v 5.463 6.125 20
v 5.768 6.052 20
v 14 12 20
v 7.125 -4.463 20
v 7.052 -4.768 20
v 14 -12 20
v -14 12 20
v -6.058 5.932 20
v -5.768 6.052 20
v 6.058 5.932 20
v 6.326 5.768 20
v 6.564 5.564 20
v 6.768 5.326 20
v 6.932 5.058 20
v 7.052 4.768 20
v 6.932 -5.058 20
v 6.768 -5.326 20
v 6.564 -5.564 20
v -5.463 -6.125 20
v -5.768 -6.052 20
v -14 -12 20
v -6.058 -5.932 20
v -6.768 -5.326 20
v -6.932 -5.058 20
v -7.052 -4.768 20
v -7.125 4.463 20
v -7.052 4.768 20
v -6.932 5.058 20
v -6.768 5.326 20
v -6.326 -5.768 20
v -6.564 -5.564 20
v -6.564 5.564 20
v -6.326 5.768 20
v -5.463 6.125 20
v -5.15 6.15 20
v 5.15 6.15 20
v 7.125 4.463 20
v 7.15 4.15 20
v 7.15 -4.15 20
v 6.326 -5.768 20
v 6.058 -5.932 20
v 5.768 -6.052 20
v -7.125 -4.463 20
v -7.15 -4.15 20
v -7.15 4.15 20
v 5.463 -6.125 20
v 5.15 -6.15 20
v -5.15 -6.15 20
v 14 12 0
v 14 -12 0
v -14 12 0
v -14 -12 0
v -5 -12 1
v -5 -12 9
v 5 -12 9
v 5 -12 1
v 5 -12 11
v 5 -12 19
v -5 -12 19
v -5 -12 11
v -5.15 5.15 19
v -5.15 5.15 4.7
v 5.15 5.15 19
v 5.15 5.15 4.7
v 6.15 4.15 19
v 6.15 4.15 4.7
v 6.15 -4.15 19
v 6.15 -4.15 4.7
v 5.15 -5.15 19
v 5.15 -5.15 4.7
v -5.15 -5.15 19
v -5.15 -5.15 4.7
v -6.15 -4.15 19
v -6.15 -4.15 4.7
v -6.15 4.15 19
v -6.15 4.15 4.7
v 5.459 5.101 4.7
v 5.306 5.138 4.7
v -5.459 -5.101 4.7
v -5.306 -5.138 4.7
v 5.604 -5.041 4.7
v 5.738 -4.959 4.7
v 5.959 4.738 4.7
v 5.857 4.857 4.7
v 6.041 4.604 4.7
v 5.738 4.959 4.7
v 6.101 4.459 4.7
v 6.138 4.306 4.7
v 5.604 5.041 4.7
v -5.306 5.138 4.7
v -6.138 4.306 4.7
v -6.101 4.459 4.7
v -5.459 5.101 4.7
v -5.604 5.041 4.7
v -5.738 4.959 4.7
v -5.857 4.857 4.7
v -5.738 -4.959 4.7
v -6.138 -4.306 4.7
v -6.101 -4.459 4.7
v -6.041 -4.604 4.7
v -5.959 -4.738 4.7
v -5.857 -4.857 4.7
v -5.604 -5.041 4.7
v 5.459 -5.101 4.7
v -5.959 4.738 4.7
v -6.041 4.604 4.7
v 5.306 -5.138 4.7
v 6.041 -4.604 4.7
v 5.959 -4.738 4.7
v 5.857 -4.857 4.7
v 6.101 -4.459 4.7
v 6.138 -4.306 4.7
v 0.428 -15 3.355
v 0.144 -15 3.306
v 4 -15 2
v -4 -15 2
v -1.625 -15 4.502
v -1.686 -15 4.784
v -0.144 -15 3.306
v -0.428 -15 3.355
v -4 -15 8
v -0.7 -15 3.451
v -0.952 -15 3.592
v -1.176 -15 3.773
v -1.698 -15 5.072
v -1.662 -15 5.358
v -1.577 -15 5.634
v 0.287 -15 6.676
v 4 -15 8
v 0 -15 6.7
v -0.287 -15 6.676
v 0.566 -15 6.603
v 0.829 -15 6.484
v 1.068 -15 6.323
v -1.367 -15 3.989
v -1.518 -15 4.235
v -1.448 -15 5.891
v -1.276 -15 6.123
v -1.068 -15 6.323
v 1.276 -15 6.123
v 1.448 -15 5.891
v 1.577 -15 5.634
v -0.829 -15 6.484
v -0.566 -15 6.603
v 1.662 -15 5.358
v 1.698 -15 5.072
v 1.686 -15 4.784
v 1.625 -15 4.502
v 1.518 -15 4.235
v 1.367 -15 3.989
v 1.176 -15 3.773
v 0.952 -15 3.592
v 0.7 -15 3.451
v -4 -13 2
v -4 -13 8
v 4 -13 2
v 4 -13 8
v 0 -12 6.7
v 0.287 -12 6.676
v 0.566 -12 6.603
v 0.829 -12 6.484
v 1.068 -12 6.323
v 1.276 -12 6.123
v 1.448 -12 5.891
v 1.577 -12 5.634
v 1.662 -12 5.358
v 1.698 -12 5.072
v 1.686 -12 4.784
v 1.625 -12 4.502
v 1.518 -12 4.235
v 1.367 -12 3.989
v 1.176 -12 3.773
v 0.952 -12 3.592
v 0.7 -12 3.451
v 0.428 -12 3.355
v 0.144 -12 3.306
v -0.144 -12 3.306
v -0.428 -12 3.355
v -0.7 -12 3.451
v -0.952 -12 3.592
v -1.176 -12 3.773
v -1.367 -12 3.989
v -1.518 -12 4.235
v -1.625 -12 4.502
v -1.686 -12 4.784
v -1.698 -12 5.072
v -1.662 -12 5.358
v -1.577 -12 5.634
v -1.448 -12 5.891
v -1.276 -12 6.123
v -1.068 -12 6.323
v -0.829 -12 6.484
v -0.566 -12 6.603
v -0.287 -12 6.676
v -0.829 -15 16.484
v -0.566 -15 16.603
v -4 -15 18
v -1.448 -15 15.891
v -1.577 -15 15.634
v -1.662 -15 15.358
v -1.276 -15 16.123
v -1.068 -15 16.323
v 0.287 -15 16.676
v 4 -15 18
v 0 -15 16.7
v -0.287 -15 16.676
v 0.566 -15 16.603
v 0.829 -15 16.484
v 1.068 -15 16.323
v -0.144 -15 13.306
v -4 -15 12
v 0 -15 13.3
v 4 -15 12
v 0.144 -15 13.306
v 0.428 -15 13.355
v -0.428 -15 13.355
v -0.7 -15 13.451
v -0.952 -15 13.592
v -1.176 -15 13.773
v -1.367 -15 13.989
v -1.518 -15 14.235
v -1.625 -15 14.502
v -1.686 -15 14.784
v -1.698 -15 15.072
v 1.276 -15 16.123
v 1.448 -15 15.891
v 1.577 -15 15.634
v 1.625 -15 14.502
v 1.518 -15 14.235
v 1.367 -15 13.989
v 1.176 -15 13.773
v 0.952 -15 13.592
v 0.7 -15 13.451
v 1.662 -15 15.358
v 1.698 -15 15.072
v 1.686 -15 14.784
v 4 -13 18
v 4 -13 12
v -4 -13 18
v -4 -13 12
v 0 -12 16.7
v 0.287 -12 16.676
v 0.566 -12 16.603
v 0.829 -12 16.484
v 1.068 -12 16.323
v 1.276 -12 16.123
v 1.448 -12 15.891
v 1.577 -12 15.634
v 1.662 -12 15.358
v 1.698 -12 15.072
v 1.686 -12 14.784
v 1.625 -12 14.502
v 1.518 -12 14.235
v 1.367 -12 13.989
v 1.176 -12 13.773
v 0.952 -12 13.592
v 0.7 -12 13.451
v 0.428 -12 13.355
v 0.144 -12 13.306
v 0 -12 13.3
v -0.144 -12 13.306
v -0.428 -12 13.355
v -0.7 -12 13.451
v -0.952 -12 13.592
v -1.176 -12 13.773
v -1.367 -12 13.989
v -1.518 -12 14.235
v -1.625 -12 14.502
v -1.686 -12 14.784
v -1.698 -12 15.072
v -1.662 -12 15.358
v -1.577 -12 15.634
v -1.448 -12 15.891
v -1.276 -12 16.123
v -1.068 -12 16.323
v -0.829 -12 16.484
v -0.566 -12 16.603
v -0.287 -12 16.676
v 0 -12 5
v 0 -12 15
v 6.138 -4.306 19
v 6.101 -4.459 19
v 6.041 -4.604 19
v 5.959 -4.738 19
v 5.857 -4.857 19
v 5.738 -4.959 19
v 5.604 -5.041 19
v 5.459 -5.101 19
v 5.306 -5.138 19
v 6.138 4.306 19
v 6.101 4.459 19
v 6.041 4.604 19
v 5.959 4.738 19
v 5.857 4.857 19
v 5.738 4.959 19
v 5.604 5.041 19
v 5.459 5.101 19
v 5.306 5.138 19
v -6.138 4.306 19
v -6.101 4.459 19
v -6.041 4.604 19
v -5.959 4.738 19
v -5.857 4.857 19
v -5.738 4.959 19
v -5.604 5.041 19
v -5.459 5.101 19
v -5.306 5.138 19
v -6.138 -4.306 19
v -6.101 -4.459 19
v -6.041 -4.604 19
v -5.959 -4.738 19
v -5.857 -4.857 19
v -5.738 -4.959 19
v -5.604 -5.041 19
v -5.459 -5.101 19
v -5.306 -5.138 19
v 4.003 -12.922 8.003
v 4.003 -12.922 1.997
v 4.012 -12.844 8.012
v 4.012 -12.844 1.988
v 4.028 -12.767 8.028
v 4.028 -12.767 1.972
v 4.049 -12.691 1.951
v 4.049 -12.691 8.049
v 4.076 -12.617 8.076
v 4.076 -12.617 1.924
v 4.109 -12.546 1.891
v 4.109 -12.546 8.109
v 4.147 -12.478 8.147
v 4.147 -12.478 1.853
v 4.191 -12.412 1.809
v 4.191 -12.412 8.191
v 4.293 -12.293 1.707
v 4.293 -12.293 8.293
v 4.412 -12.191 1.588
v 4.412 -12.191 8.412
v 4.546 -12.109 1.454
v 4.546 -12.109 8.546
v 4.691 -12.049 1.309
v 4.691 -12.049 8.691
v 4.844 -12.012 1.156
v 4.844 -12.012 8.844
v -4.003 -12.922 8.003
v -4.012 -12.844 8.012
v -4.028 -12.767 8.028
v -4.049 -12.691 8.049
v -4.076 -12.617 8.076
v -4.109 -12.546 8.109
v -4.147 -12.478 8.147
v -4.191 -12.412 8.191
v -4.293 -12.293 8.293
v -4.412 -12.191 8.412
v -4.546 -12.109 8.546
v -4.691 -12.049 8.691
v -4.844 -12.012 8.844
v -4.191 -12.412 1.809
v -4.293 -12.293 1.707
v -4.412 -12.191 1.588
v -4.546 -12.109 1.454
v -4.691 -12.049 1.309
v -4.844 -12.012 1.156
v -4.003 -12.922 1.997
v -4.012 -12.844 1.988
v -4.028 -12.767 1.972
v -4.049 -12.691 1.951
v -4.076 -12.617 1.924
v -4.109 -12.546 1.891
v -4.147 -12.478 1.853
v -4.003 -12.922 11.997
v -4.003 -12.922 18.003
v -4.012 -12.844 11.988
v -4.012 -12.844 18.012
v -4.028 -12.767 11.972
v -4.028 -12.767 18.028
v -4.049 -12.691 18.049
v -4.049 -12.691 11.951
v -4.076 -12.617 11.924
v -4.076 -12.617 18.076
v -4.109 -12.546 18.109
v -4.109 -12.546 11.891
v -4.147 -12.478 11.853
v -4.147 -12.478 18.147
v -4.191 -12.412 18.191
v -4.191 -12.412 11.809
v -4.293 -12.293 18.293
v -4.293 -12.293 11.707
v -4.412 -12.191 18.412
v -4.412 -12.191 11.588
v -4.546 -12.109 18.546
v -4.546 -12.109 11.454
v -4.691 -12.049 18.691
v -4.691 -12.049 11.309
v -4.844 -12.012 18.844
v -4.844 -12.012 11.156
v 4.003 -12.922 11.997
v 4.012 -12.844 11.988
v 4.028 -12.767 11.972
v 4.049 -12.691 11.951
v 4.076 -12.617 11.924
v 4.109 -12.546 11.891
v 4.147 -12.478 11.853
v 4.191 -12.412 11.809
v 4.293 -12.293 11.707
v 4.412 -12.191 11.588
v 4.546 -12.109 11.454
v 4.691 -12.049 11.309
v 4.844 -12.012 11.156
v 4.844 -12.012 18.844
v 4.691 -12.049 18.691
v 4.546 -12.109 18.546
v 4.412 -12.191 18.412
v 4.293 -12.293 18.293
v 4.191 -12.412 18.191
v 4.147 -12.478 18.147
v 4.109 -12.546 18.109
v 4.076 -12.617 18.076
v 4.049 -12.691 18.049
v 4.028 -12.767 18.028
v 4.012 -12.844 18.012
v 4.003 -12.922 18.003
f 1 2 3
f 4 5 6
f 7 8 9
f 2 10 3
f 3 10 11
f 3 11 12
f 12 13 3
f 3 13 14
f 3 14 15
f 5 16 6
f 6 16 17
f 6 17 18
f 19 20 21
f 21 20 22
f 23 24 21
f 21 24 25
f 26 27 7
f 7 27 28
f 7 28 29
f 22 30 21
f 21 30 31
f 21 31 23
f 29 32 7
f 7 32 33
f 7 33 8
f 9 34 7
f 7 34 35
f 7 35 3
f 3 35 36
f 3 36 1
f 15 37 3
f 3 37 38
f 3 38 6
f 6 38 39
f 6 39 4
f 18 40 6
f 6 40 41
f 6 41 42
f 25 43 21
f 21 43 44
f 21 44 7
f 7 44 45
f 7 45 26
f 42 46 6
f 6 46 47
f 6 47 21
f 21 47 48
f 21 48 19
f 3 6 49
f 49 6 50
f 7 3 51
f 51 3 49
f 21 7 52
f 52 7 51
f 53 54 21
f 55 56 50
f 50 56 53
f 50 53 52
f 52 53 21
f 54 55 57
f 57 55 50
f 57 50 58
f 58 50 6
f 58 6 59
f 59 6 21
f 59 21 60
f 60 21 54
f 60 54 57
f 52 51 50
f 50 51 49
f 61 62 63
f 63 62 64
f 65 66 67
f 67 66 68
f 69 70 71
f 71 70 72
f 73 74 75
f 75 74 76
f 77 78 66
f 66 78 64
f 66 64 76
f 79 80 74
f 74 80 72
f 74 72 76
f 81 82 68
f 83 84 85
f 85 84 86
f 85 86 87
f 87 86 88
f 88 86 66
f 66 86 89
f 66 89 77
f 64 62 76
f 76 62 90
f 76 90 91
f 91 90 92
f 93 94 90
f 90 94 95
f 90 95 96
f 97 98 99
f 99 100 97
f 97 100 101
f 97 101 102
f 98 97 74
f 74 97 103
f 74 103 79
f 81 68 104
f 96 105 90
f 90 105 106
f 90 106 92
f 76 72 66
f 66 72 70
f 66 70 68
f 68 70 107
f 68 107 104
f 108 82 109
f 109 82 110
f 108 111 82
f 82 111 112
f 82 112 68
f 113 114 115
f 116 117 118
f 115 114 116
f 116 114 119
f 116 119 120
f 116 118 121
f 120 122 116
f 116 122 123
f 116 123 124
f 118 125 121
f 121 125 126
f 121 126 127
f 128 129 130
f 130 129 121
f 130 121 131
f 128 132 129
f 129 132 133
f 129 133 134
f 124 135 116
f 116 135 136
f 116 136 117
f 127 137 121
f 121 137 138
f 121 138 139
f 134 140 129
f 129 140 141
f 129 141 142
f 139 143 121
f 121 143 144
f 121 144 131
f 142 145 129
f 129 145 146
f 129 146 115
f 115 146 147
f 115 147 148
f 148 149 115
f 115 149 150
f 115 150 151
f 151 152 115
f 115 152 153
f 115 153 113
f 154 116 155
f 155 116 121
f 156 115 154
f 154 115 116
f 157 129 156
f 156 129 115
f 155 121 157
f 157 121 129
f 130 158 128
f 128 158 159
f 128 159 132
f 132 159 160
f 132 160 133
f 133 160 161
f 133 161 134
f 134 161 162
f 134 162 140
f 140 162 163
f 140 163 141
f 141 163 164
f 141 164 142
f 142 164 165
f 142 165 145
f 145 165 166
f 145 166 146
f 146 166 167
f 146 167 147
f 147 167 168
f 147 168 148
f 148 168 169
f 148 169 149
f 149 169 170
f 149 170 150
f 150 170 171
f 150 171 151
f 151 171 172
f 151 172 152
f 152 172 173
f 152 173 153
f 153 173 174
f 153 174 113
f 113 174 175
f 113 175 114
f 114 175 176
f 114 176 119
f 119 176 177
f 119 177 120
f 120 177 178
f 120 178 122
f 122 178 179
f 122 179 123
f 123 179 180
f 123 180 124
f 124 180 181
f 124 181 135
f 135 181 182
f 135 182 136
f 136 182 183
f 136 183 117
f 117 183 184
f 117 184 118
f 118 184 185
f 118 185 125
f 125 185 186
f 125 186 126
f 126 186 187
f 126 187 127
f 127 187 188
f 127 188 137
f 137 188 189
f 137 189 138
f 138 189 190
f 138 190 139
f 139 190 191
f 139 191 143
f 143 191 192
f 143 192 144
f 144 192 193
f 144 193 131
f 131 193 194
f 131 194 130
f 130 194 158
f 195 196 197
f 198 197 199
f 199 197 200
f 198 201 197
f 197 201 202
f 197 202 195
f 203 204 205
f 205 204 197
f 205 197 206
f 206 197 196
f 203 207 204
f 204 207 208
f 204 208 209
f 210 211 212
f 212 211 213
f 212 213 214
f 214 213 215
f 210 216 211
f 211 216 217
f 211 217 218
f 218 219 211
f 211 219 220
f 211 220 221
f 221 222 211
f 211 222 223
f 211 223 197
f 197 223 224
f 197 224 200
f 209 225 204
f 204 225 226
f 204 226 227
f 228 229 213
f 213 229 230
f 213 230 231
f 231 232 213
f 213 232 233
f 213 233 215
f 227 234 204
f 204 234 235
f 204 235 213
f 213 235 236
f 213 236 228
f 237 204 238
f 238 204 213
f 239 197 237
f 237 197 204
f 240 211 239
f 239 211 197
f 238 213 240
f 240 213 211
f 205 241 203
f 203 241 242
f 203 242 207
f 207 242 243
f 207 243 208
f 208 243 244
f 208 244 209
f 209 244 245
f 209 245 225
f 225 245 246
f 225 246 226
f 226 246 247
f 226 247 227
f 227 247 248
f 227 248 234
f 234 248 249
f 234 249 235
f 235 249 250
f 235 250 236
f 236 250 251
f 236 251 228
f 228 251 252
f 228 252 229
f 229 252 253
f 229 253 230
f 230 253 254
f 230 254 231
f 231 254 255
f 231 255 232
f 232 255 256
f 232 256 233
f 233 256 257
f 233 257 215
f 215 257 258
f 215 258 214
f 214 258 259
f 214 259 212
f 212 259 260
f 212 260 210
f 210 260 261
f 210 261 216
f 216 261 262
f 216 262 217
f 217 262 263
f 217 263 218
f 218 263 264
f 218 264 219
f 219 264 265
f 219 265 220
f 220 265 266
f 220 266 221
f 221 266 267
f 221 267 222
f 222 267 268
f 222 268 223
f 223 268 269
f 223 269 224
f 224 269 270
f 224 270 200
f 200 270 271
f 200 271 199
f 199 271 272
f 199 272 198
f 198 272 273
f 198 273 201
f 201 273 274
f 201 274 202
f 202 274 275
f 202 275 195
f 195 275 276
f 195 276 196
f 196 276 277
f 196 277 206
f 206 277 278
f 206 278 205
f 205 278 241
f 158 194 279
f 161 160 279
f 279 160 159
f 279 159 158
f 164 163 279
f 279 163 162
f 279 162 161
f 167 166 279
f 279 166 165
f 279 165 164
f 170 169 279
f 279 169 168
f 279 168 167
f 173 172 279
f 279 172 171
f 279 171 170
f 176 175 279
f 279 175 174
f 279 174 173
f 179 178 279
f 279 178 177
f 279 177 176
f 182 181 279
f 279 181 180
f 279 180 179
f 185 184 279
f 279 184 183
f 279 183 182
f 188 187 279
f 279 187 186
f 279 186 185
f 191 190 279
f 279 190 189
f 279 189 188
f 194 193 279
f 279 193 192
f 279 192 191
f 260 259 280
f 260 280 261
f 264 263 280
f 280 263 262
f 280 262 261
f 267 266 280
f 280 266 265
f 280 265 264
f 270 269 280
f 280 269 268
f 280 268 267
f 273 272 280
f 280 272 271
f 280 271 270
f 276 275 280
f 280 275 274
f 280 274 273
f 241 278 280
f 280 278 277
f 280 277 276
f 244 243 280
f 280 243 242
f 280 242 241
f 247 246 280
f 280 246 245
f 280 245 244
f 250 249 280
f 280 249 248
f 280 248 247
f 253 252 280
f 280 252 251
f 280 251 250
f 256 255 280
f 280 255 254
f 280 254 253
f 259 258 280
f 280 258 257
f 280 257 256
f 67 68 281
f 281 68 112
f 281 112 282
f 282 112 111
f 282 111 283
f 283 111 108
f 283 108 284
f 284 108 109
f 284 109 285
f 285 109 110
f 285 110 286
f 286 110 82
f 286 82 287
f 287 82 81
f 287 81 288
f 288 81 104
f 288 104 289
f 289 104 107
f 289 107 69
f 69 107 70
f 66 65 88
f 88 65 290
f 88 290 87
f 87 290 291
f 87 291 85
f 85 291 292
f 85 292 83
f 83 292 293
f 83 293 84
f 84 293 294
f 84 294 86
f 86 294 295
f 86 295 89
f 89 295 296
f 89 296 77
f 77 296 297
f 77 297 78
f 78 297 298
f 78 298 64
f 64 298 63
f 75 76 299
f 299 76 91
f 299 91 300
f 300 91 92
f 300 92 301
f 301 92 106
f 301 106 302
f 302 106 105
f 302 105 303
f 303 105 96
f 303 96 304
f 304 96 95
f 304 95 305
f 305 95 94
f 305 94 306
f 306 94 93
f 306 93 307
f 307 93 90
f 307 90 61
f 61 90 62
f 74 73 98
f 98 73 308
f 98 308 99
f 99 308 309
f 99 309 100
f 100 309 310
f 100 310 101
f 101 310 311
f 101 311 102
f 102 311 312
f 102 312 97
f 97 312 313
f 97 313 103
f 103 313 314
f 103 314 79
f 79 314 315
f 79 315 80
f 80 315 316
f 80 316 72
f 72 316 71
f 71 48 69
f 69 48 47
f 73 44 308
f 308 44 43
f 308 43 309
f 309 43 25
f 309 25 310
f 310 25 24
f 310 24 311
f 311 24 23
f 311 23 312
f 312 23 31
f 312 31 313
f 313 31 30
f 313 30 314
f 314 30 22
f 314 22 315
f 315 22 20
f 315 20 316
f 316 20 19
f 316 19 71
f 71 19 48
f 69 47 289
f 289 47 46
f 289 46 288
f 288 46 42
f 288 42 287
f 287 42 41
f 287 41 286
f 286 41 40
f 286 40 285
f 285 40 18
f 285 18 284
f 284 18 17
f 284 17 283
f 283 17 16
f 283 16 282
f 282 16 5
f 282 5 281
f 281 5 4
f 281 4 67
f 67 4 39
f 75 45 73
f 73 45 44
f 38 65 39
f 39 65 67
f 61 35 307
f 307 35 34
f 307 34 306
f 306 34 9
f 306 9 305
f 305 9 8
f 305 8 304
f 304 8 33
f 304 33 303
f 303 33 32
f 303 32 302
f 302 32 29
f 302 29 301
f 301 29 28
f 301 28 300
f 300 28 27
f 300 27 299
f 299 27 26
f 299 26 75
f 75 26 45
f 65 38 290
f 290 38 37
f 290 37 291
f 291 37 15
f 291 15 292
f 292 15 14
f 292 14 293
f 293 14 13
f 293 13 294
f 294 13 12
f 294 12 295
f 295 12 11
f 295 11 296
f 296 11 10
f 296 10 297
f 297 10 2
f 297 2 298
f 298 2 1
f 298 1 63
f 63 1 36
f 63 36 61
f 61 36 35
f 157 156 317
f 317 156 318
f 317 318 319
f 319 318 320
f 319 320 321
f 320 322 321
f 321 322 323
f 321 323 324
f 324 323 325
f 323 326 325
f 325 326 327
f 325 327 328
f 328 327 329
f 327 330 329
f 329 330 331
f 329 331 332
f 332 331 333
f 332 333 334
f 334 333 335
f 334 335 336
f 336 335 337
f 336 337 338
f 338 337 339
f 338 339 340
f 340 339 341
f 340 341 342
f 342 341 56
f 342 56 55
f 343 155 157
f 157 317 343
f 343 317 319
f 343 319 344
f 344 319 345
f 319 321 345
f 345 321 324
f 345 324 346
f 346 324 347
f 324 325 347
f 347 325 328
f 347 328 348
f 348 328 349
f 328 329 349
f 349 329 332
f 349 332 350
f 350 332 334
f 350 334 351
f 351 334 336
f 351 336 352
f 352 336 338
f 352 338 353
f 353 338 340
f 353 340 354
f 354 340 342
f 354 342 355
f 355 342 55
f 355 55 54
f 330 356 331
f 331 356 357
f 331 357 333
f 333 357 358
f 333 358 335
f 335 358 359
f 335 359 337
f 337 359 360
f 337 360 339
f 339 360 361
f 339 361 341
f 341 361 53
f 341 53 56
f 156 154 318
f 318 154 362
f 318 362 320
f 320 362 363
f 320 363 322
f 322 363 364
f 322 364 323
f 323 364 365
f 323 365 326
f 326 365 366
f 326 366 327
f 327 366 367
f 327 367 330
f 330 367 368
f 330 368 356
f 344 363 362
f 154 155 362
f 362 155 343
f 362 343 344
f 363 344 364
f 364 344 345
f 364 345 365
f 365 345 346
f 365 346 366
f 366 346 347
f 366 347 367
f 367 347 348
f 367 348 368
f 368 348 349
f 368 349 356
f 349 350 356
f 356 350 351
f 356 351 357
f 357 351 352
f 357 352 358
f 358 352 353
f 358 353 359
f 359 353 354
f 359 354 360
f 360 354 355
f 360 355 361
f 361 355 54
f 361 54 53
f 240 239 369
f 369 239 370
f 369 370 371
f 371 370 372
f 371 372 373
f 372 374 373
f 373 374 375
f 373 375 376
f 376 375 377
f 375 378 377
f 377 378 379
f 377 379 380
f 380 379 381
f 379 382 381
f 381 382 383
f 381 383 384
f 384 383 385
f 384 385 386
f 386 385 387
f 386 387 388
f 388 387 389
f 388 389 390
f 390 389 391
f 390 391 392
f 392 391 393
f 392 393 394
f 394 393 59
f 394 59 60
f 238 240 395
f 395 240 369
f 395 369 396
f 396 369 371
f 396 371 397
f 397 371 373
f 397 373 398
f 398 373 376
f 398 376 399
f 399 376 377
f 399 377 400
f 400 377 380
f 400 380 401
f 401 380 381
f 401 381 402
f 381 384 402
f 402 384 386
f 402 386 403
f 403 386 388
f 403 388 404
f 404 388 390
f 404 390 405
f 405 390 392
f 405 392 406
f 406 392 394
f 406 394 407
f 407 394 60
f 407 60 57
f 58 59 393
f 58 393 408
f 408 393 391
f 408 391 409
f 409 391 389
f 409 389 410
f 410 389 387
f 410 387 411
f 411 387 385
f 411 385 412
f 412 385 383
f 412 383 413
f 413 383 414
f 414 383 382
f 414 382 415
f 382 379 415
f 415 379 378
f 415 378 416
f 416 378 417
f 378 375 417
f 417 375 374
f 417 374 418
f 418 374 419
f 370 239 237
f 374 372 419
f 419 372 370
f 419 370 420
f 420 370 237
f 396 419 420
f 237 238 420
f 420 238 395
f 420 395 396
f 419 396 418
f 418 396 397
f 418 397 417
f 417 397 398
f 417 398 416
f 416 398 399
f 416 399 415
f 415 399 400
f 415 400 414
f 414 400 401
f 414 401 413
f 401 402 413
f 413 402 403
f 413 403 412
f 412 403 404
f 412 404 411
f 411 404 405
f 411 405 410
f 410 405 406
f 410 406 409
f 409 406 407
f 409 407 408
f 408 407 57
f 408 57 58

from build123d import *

# Parameters (mm, degrees)
SKETCH1_W           = 28
SKETCH1_H           = 24
BOSS_EXTRUDE1_DEPTH = 20
SKETCH2_W           = 12.3
SKETCH2_H           = 10.3
CUT_EXTRUDE1_DEPTH  = 15.3
SKETCH3_W           = 8
SKETCH3_H           = 6
SKETCH3_R           = 1.7
BOSS_EXTRUDE3_DEPTH = 3
FILLET1_R           = 1
CHAMFER1_SIZE       = 1
FILLET2_R           = 1


with BuildPart() as part:
    # Sketch1 → Boss-Extrude1 (new body)
    with BuildSketch(Plane.XY):
        Rectangle(SKETCH1_W, SKETCH1_H)
    extrude(amount=BOSS_EXTRUDE1_DEPTH)

    # Sketch2 → Cut-Extrude1 (cut)
    with BuildSketch(Plane.XY.offset(20)):
        Rectangle(SKETCH2_W, SKETCH2_H)
    extrude(amount=-CUT_EXTRUDE1_DEPTH, mode=Mode.SUBTRACT)

    # Sketch3 → Boss-Extrude3 (add)
    # profile 1 of 2: a face of its own
    with BuildSketch(Plane.XZ.offset(12)):
        with Locations((0, 5)):
            Rectangle(SKETCH3_W, SKETCH3_H)
        with Locations(Location((0, 5, 0), (0, 0, 90))):
            Circle(SKETCH3_R, mode=Mode.SUBTRACT)
    # profile 2 of 2: a face of its own
    with BuildSketch(Plane.XZ.offset(12)):
        with Locations((0, 15)):
            Rectangle(SKETCH3_W, SKETCH3_H)
        with Locations(Location((0, 15, 0), (0, 0, 270))):
            Circle(SKETCH3_R, mode=Mode.SUBTRACT)
    extrude(amount=BOSS_EXTRUDE3_DEPTH)

    # Fillet1
    fillet1_edges = [part.edges().sort_by_distance(p)[0] for p in [
        (-6.15, 5.15, 12.35),
        (6.15, 5.15, 12.35),
        (6.15, -5.15, 12.35),
        (-6.15, -5.15, 12.35),
    ]]
    fillet(fillet1_edges, radius=FILLET1_R)

    # Chamfer1
    chamfer1_edges = [part.edges().sort_by_distance(p)[0] for p in [
        (6.15, 0, 20),
        (0, -5.15, 20),
        (0, 5.15, 20),
        (-6.15, 0, 20),
        (5.857106781, -4.857106781, 20),
        (5.857106781, 4.857106781, 20),
        (-5.857106781, 4.857106781, 20),
        (-5.857106781, -4.857106781, 20),
    ]]
    chamfer(chamfer1_edges, length=CHAMFER1_SIZE)

    # Fillet2
    fillet2_edges = [part.edges().sort_by_distance(p)[0] for p in [
        (4, -12, 15),
        (0, -12, 18),
        (-4, -12, 15),
        (0, -12, 12),
        (-4, -12, 5),
        (0, -12, 2),
        (4, -12, 5),
        (0, -12, 8),
    ]]
    fillet(fillet2_edges, radius=FILLET2_R)


solid = part.part
